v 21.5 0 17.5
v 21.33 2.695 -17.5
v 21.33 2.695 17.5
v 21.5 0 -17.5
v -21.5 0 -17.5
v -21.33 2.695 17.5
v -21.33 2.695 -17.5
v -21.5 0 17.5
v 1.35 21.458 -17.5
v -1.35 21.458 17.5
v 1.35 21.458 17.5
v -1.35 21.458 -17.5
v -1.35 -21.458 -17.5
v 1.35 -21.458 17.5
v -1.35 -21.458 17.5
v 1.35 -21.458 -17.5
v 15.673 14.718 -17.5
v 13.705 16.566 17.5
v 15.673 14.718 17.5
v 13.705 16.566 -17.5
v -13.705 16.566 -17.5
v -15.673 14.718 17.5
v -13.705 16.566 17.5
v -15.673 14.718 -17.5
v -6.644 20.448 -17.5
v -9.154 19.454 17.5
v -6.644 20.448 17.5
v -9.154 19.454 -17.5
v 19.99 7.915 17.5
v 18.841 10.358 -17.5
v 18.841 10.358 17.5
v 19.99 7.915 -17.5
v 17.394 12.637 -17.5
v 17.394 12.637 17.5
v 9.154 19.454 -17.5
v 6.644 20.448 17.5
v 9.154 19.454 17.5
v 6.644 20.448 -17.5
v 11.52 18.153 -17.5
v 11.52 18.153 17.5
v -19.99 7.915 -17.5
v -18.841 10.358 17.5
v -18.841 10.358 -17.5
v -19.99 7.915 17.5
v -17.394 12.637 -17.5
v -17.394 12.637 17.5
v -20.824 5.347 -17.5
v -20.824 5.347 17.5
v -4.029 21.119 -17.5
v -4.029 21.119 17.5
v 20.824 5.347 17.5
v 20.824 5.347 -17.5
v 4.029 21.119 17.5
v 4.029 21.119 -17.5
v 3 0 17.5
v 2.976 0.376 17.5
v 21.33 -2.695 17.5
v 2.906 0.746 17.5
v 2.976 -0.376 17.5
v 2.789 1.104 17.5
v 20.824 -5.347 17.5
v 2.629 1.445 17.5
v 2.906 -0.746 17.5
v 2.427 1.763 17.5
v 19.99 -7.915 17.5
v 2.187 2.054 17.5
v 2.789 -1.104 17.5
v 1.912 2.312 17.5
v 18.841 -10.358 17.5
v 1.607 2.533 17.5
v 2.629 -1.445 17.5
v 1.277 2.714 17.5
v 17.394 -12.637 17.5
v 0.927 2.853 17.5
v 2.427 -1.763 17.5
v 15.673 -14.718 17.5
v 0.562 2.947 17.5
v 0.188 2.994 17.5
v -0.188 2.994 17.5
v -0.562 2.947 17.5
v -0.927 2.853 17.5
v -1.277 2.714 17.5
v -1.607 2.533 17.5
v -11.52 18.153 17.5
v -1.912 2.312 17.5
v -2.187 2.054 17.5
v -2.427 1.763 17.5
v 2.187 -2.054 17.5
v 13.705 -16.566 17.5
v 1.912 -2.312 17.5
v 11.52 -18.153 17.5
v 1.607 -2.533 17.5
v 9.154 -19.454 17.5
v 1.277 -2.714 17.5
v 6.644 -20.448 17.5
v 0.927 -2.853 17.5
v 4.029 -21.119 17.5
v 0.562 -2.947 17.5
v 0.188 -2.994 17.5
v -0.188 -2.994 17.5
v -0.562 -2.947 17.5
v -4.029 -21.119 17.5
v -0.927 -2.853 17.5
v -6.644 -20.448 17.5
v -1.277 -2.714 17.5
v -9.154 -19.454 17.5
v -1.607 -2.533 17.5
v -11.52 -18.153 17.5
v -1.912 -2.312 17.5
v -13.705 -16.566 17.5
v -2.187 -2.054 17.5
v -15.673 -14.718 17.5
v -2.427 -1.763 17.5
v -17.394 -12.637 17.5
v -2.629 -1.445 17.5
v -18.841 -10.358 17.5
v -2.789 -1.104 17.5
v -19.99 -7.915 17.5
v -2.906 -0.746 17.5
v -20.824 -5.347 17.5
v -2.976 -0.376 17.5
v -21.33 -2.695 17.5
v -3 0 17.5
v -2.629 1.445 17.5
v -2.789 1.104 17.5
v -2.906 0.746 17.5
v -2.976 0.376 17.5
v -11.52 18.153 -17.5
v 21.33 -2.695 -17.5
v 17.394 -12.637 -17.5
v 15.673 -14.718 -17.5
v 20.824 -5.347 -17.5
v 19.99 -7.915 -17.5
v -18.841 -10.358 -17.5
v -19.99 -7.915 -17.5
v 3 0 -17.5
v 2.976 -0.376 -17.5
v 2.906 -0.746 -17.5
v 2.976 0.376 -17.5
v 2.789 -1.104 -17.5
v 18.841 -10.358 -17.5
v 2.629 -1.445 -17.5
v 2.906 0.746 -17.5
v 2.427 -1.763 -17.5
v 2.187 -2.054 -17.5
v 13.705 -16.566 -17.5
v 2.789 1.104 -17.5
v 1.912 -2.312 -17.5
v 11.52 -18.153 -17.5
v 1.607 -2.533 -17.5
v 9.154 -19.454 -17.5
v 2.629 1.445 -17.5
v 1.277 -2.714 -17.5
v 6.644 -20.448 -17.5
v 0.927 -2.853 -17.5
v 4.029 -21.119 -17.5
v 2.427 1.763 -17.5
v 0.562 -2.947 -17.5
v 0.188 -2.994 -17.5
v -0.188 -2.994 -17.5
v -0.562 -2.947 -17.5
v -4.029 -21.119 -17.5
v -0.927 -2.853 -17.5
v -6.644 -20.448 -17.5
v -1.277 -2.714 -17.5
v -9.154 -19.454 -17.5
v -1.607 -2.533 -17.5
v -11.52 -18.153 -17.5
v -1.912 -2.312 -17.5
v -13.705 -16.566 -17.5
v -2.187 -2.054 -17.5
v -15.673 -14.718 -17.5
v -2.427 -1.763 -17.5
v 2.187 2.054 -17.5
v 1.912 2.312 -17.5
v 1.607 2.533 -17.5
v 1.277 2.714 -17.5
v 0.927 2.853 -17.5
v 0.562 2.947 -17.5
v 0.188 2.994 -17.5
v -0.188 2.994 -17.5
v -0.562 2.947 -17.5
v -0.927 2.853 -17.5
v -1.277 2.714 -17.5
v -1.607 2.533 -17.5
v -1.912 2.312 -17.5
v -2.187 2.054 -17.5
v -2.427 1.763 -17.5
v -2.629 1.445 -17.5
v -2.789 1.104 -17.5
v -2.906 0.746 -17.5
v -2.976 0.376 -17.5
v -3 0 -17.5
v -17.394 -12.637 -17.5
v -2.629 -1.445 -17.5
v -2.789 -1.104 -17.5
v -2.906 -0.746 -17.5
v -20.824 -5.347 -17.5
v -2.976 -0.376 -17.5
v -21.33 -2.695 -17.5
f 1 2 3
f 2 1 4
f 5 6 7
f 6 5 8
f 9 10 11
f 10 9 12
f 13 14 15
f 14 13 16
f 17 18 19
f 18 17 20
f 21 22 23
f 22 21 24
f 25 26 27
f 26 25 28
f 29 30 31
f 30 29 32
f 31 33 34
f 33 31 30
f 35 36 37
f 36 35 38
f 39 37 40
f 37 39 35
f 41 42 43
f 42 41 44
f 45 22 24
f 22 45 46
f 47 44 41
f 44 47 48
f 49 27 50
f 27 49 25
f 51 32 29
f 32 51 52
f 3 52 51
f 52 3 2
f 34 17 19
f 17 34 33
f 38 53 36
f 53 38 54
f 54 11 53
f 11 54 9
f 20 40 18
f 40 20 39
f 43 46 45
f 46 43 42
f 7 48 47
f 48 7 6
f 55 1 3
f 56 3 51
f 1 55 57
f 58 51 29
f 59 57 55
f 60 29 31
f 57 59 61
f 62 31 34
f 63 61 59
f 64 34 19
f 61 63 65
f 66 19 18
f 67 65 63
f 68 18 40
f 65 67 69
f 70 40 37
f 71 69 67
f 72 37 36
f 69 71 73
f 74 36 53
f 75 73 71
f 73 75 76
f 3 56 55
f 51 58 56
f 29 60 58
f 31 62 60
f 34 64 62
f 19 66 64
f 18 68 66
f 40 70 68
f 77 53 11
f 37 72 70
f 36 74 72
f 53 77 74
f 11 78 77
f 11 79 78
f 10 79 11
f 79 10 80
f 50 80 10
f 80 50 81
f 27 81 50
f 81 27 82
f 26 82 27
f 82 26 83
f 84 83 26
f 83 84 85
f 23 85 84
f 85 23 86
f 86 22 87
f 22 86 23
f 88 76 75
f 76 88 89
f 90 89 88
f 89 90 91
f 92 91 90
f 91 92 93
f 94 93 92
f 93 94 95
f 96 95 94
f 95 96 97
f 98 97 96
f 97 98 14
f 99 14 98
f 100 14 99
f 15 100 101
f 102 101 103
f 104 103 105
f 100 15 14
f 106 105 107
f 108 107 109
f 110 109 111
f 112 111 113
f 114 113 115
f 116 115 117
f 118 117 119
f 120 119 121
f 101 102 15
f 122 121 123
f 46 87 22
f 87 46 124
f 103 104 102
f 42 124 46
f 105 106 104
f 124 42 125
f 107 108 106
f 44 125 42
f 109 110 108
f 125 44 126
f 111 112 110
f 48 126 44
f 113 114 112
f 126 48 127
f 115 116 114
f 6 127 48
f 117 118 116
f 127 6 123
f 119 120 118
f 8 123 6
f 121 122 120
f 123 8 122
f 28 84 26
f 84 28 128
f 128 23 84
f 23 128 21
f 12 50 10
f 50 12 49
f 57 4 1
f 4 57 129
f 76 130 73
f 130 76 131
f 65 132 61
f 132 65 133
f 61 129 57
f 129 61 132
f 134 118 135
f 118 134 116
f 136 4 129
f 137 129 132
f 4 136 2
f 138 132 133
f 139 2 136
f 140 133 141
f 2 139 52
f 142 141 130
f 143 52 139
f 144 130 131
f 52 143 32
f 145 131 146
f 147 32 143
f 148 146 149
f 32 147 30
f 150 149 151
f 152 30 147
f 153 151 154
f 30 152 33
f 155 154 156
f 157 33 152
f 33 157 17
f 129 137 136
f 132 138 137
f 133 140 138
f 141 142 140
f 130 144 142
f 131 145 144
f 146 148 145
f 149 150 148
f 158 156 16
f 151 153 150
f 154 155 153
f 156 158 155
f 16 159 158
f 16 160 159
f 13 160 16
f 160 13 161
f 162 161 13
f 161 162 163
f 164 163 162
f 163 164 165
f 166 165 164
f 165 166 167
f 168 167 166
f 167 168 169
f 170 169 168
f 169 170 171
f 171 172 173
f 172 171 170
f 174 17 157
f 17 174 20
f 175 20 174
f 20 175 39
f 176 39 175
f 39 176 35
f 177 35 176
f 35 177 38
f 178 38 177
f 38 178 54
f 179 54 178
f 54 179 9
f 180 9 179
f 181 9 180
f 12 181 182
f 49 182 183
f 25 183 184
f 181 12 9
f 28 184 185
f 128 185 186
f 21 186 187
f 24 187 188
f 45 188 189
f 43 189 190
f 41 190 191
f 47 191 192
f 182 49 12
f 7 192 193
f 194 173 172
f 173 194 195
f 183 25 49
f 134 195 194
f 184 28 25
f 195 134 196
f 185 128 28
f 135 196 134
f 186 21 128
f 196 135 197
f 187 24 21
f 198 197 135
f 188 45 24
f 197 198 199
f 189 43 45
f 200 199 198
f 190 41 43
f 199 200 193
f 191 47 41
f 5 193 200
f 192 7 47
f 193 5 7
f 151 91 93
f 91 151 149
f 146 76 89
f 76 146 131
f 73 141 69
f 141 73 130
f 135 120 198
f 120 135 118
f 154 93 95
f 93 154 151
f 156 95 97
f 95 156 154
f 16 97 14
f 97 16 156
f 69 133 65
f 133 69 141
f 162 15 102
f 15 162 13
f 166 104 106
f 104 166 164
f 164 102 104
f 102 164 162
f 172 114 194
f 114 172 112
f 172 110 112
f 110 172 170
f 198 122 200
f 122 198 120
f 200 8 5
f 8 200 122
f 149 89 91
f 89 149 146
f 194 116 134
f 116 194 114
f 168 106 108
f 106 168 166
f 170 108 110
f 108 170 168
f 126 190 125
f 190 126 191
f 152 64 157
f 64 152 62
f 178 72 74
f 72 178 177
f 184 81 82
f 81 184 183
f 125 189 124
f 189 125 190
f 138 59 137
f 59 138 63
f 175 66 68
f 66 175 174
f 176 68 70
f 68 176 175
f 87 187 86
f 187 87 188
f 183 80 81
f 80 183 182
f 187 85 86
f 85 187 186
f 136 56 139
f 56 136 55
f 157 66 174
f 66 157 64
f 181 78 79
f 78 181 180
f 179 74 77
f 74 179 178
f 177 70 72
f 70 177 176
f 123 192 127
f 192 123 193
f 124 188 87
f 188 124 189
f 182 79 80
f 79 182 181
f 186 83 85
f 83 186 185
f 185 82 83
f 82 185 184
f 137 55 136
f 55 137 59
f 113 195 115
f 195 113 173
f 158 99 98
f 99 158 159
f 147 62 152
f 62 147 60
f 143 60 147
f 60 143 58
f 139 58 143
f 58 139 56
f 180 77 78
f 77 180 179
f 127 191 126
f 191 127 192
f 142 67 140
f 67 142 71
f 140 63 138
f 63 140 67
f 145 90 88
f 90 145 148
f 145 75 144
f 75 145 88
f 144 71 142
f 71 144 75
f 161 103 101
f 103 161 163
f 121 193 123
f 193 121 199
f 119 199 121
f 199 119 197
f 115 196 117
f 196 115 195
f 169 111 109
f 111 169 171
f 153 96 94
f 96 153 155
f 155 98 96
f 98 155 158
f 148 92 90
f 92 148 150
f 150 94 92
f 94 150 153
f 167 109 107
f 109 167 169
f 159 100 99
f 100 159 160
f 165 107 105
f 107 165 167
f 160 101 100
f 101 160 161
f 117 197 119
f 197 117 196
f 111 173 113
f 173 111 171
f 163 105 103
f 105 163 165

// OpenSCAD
$fn = 50;


difference() {
	union() {
		translate(v = [0, 0, -17.5000000000]) {
			cylinder(h = 35, r = 21.5000000000);
		}
	}
	union() {
		translate(v = [0, 0, -100.0000000000]) {
			cylinder(h = 200, r = 3);
		}
	}
}
